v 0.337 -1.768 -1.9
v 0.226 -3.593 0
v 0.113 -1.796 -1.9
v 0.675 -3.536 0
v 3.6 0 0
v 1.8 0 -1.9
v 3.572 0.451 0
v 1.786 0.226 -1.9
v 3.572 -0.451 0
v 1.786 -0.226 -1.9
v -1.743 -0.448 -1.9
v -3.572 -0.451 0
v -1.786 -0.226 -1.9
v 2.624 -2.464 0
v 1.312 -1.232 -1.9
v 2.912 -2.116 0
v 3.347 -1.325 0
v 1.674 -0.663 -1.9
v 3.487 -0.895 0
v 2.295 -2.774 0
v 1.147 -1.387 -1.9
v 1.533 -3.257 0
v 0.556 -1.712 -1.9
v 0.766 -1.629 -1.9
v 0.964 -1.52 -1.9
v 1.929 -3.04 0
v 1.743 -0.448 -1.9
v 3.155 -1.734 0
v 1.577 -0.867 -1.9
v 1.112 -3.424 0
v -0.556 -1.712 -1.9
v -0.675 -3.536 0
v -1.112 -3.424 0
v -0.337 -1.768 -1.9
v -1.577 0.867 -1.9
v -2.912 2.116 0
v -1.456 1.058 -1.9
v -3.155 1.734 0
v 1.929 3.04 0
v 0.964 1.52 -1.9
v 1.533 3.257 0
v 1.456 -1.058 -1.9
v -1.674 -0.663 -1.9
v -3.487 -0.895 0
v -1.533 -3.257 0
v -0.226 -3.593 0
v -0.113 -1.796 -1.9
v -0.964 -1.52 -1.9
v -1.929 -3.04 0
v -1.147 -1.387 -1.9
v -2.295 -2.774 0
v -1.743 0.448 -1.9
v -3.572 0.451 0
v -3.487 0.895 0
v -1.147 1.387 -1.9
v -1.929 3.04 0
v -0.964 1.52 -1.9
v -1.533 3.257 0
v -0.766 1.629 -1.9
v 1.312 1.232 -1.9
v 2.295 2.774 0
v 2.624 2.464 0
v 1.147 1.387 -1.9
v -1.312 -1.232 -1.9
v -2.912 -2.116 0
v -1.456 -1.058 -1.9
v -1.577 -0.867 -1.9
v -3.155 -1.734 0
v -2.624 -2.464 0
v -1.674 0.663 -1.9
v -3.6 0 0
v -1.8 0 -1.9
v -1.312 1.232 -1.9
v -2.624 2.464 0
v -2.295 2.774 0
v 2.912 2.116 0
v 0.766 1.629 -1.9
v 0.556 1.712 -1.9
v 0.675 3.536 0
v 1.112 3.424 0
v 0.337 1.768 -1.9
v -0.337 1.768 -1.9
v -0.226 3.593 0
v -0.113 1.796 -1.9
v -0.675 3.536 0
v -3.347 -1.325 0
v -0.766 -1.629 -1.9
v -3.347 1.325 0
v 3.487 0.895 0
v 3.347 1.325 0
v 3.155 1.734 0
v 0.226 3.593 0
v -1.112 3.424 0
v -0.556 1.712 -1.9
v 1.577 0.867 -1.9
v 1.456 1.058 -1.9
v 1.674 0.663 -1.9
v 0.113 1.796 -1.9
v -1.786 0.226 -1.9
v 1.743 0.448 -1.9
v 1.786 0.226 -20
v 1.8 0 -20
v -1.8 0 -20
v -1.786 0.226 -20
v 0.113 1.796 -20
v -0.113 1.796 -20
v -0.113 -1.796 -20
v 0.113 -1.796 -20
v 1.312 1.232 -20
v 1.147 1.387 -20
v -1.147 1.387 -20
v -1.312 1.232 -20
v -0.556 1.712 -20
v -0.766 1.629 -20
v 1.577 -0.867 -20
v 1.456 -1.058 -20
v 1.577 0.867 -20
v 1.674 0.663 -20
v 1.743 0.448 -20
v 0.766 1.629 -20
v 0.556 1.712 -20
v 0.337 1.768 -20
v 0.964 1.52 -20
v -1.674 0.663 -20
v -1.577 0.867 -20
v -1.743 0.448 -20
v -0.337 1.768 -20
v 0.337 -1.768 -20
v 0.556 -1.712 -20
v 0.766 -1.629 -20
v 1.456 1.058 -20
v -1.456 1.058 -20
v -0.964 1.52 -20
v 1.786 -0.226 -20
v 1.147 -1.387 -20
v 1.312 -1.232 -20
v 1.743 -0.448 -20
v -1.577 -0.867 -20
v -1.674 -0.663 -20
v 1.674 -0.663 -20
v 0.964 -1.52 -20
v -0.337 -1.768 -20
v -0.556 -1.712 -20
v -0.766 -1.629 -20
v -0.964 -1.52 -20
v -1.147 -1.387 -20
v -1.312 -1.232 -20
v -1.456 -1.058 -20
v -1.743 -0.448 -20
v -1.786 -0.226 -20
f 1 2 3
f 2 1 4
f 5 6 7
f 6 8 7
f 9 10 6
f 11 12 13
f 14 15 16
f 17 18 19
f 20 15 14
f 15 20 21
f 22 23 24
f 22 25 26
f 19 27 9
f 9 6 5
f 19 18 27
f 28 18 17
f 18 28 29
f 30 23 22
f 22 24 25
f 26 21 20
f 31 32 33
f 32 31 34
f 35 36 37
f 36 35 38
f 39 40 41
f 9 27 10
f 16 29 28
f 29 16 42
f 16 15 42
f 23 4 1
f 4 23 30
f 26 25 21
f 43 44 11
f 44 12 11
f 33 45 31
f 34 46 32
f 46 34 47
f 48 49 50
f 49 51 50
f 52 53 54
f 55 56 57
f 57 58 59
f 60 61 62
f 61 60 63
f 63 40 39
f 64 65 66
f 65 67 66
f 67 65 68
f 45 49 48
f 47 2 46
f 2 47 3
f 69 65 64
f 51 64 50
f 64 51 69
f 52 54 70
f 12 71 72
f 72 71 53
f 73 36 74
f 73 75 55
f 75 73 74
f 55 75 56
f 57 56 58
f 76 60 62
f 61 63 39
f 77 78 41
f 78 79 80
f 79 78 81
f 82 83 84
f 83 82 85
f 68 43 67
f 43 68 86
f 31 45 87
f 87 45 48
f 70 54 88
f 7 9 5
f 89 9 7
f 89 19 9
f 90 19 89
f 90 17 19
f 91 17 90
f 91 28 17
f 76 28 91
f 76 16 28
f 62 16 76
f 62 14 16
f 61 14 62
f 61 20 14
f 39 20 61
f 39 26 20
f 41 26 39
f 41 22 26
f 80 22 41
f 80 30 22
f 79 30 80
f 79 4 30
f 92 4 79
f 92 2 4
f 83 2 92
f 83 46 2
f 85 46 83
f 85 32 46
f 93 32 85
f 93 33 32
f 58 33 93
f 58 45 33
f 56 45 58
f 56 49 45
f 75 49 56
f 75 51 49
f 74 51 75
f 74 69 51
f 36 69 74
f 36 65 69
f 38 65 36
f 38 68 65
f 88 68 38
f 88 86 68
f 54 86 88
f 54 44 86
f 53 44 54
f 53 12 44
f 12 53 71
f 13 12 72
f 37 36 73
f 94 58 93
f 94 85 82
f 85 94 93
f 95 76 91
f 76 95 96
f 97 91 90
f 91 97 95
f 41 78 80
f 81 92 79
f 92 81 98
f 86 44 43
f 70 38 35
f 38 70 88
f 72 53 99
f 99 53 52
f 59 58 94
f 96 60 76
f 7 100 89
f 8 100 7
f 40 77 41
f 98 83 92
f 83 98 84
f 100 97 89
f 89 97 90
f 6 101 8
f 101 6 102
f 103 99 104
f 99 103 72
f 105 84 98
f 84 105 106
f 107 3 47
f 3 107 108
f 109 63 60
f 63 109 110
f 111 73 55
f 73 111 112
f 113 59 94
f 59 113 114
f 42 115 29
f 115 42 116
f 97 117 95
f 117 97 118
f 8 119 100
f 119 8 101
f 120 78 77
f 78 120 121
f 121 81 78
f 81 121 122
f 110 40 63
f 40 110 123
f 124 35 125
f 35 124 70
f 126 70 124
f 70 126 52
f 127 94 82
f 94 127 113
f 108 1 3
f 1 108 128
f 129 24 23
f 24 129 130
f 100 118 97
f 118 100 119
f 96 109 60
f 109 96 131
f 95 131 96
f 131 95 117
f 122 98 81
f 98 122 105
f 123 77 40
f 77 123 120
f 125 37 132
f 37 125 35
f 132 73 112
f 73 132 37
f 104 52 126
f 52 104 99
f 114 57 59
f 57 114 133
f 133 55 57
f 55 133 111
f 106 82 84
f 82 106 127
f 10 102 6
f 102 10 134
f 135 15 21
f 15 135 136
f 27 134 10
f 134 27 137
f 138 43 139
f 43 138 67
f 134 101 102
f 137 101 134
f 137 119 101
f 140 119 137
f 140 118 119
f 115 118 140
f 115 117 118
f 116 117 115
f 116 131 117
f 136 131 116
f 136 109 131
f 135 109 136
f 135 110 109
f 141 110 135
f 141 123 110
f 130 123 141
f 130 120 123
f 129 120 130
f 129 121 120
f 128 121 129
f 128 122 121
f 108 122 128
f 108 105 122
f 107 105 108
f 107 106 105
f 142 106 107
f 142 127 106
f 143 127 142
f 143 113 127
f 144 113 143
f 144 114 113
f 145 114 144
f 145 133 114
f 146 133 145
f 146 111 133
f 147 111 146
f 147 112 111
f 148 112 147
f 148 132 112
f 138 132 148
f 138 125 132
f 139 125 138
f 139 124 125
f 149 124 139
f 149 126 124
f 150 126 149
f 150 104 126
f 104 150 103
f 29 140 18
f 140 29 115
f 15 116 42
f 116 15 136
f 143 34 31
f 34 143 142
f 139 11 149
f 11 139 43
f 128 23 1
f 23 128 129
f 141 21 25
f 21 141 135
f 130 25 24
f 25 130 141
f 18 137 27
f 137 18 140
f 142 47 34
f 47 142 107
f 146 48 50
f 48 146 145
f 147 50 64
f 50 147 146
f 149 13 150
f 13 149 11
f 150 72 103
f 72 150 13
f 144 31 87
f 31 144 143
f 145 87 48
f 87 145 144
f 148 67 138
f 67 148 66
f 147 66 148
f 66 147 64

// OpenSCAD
$fn = 50;


difference() {
	union() {
		translate(v = [0, 0, -1.9000000000]) {
			rotate(a = [0, 0, 0]) {
				cylinder(h = 1.9000000000, r1 = 1.8000000000, r2 = 3.6000000000);
			}
		}
		translate(v = [0, 0, -20]) {
			rotate(a = [0, 0, 0]) {
				cylinder(h = 20, r = 1.8000000000);
			}
		}
	}
	union();
}
